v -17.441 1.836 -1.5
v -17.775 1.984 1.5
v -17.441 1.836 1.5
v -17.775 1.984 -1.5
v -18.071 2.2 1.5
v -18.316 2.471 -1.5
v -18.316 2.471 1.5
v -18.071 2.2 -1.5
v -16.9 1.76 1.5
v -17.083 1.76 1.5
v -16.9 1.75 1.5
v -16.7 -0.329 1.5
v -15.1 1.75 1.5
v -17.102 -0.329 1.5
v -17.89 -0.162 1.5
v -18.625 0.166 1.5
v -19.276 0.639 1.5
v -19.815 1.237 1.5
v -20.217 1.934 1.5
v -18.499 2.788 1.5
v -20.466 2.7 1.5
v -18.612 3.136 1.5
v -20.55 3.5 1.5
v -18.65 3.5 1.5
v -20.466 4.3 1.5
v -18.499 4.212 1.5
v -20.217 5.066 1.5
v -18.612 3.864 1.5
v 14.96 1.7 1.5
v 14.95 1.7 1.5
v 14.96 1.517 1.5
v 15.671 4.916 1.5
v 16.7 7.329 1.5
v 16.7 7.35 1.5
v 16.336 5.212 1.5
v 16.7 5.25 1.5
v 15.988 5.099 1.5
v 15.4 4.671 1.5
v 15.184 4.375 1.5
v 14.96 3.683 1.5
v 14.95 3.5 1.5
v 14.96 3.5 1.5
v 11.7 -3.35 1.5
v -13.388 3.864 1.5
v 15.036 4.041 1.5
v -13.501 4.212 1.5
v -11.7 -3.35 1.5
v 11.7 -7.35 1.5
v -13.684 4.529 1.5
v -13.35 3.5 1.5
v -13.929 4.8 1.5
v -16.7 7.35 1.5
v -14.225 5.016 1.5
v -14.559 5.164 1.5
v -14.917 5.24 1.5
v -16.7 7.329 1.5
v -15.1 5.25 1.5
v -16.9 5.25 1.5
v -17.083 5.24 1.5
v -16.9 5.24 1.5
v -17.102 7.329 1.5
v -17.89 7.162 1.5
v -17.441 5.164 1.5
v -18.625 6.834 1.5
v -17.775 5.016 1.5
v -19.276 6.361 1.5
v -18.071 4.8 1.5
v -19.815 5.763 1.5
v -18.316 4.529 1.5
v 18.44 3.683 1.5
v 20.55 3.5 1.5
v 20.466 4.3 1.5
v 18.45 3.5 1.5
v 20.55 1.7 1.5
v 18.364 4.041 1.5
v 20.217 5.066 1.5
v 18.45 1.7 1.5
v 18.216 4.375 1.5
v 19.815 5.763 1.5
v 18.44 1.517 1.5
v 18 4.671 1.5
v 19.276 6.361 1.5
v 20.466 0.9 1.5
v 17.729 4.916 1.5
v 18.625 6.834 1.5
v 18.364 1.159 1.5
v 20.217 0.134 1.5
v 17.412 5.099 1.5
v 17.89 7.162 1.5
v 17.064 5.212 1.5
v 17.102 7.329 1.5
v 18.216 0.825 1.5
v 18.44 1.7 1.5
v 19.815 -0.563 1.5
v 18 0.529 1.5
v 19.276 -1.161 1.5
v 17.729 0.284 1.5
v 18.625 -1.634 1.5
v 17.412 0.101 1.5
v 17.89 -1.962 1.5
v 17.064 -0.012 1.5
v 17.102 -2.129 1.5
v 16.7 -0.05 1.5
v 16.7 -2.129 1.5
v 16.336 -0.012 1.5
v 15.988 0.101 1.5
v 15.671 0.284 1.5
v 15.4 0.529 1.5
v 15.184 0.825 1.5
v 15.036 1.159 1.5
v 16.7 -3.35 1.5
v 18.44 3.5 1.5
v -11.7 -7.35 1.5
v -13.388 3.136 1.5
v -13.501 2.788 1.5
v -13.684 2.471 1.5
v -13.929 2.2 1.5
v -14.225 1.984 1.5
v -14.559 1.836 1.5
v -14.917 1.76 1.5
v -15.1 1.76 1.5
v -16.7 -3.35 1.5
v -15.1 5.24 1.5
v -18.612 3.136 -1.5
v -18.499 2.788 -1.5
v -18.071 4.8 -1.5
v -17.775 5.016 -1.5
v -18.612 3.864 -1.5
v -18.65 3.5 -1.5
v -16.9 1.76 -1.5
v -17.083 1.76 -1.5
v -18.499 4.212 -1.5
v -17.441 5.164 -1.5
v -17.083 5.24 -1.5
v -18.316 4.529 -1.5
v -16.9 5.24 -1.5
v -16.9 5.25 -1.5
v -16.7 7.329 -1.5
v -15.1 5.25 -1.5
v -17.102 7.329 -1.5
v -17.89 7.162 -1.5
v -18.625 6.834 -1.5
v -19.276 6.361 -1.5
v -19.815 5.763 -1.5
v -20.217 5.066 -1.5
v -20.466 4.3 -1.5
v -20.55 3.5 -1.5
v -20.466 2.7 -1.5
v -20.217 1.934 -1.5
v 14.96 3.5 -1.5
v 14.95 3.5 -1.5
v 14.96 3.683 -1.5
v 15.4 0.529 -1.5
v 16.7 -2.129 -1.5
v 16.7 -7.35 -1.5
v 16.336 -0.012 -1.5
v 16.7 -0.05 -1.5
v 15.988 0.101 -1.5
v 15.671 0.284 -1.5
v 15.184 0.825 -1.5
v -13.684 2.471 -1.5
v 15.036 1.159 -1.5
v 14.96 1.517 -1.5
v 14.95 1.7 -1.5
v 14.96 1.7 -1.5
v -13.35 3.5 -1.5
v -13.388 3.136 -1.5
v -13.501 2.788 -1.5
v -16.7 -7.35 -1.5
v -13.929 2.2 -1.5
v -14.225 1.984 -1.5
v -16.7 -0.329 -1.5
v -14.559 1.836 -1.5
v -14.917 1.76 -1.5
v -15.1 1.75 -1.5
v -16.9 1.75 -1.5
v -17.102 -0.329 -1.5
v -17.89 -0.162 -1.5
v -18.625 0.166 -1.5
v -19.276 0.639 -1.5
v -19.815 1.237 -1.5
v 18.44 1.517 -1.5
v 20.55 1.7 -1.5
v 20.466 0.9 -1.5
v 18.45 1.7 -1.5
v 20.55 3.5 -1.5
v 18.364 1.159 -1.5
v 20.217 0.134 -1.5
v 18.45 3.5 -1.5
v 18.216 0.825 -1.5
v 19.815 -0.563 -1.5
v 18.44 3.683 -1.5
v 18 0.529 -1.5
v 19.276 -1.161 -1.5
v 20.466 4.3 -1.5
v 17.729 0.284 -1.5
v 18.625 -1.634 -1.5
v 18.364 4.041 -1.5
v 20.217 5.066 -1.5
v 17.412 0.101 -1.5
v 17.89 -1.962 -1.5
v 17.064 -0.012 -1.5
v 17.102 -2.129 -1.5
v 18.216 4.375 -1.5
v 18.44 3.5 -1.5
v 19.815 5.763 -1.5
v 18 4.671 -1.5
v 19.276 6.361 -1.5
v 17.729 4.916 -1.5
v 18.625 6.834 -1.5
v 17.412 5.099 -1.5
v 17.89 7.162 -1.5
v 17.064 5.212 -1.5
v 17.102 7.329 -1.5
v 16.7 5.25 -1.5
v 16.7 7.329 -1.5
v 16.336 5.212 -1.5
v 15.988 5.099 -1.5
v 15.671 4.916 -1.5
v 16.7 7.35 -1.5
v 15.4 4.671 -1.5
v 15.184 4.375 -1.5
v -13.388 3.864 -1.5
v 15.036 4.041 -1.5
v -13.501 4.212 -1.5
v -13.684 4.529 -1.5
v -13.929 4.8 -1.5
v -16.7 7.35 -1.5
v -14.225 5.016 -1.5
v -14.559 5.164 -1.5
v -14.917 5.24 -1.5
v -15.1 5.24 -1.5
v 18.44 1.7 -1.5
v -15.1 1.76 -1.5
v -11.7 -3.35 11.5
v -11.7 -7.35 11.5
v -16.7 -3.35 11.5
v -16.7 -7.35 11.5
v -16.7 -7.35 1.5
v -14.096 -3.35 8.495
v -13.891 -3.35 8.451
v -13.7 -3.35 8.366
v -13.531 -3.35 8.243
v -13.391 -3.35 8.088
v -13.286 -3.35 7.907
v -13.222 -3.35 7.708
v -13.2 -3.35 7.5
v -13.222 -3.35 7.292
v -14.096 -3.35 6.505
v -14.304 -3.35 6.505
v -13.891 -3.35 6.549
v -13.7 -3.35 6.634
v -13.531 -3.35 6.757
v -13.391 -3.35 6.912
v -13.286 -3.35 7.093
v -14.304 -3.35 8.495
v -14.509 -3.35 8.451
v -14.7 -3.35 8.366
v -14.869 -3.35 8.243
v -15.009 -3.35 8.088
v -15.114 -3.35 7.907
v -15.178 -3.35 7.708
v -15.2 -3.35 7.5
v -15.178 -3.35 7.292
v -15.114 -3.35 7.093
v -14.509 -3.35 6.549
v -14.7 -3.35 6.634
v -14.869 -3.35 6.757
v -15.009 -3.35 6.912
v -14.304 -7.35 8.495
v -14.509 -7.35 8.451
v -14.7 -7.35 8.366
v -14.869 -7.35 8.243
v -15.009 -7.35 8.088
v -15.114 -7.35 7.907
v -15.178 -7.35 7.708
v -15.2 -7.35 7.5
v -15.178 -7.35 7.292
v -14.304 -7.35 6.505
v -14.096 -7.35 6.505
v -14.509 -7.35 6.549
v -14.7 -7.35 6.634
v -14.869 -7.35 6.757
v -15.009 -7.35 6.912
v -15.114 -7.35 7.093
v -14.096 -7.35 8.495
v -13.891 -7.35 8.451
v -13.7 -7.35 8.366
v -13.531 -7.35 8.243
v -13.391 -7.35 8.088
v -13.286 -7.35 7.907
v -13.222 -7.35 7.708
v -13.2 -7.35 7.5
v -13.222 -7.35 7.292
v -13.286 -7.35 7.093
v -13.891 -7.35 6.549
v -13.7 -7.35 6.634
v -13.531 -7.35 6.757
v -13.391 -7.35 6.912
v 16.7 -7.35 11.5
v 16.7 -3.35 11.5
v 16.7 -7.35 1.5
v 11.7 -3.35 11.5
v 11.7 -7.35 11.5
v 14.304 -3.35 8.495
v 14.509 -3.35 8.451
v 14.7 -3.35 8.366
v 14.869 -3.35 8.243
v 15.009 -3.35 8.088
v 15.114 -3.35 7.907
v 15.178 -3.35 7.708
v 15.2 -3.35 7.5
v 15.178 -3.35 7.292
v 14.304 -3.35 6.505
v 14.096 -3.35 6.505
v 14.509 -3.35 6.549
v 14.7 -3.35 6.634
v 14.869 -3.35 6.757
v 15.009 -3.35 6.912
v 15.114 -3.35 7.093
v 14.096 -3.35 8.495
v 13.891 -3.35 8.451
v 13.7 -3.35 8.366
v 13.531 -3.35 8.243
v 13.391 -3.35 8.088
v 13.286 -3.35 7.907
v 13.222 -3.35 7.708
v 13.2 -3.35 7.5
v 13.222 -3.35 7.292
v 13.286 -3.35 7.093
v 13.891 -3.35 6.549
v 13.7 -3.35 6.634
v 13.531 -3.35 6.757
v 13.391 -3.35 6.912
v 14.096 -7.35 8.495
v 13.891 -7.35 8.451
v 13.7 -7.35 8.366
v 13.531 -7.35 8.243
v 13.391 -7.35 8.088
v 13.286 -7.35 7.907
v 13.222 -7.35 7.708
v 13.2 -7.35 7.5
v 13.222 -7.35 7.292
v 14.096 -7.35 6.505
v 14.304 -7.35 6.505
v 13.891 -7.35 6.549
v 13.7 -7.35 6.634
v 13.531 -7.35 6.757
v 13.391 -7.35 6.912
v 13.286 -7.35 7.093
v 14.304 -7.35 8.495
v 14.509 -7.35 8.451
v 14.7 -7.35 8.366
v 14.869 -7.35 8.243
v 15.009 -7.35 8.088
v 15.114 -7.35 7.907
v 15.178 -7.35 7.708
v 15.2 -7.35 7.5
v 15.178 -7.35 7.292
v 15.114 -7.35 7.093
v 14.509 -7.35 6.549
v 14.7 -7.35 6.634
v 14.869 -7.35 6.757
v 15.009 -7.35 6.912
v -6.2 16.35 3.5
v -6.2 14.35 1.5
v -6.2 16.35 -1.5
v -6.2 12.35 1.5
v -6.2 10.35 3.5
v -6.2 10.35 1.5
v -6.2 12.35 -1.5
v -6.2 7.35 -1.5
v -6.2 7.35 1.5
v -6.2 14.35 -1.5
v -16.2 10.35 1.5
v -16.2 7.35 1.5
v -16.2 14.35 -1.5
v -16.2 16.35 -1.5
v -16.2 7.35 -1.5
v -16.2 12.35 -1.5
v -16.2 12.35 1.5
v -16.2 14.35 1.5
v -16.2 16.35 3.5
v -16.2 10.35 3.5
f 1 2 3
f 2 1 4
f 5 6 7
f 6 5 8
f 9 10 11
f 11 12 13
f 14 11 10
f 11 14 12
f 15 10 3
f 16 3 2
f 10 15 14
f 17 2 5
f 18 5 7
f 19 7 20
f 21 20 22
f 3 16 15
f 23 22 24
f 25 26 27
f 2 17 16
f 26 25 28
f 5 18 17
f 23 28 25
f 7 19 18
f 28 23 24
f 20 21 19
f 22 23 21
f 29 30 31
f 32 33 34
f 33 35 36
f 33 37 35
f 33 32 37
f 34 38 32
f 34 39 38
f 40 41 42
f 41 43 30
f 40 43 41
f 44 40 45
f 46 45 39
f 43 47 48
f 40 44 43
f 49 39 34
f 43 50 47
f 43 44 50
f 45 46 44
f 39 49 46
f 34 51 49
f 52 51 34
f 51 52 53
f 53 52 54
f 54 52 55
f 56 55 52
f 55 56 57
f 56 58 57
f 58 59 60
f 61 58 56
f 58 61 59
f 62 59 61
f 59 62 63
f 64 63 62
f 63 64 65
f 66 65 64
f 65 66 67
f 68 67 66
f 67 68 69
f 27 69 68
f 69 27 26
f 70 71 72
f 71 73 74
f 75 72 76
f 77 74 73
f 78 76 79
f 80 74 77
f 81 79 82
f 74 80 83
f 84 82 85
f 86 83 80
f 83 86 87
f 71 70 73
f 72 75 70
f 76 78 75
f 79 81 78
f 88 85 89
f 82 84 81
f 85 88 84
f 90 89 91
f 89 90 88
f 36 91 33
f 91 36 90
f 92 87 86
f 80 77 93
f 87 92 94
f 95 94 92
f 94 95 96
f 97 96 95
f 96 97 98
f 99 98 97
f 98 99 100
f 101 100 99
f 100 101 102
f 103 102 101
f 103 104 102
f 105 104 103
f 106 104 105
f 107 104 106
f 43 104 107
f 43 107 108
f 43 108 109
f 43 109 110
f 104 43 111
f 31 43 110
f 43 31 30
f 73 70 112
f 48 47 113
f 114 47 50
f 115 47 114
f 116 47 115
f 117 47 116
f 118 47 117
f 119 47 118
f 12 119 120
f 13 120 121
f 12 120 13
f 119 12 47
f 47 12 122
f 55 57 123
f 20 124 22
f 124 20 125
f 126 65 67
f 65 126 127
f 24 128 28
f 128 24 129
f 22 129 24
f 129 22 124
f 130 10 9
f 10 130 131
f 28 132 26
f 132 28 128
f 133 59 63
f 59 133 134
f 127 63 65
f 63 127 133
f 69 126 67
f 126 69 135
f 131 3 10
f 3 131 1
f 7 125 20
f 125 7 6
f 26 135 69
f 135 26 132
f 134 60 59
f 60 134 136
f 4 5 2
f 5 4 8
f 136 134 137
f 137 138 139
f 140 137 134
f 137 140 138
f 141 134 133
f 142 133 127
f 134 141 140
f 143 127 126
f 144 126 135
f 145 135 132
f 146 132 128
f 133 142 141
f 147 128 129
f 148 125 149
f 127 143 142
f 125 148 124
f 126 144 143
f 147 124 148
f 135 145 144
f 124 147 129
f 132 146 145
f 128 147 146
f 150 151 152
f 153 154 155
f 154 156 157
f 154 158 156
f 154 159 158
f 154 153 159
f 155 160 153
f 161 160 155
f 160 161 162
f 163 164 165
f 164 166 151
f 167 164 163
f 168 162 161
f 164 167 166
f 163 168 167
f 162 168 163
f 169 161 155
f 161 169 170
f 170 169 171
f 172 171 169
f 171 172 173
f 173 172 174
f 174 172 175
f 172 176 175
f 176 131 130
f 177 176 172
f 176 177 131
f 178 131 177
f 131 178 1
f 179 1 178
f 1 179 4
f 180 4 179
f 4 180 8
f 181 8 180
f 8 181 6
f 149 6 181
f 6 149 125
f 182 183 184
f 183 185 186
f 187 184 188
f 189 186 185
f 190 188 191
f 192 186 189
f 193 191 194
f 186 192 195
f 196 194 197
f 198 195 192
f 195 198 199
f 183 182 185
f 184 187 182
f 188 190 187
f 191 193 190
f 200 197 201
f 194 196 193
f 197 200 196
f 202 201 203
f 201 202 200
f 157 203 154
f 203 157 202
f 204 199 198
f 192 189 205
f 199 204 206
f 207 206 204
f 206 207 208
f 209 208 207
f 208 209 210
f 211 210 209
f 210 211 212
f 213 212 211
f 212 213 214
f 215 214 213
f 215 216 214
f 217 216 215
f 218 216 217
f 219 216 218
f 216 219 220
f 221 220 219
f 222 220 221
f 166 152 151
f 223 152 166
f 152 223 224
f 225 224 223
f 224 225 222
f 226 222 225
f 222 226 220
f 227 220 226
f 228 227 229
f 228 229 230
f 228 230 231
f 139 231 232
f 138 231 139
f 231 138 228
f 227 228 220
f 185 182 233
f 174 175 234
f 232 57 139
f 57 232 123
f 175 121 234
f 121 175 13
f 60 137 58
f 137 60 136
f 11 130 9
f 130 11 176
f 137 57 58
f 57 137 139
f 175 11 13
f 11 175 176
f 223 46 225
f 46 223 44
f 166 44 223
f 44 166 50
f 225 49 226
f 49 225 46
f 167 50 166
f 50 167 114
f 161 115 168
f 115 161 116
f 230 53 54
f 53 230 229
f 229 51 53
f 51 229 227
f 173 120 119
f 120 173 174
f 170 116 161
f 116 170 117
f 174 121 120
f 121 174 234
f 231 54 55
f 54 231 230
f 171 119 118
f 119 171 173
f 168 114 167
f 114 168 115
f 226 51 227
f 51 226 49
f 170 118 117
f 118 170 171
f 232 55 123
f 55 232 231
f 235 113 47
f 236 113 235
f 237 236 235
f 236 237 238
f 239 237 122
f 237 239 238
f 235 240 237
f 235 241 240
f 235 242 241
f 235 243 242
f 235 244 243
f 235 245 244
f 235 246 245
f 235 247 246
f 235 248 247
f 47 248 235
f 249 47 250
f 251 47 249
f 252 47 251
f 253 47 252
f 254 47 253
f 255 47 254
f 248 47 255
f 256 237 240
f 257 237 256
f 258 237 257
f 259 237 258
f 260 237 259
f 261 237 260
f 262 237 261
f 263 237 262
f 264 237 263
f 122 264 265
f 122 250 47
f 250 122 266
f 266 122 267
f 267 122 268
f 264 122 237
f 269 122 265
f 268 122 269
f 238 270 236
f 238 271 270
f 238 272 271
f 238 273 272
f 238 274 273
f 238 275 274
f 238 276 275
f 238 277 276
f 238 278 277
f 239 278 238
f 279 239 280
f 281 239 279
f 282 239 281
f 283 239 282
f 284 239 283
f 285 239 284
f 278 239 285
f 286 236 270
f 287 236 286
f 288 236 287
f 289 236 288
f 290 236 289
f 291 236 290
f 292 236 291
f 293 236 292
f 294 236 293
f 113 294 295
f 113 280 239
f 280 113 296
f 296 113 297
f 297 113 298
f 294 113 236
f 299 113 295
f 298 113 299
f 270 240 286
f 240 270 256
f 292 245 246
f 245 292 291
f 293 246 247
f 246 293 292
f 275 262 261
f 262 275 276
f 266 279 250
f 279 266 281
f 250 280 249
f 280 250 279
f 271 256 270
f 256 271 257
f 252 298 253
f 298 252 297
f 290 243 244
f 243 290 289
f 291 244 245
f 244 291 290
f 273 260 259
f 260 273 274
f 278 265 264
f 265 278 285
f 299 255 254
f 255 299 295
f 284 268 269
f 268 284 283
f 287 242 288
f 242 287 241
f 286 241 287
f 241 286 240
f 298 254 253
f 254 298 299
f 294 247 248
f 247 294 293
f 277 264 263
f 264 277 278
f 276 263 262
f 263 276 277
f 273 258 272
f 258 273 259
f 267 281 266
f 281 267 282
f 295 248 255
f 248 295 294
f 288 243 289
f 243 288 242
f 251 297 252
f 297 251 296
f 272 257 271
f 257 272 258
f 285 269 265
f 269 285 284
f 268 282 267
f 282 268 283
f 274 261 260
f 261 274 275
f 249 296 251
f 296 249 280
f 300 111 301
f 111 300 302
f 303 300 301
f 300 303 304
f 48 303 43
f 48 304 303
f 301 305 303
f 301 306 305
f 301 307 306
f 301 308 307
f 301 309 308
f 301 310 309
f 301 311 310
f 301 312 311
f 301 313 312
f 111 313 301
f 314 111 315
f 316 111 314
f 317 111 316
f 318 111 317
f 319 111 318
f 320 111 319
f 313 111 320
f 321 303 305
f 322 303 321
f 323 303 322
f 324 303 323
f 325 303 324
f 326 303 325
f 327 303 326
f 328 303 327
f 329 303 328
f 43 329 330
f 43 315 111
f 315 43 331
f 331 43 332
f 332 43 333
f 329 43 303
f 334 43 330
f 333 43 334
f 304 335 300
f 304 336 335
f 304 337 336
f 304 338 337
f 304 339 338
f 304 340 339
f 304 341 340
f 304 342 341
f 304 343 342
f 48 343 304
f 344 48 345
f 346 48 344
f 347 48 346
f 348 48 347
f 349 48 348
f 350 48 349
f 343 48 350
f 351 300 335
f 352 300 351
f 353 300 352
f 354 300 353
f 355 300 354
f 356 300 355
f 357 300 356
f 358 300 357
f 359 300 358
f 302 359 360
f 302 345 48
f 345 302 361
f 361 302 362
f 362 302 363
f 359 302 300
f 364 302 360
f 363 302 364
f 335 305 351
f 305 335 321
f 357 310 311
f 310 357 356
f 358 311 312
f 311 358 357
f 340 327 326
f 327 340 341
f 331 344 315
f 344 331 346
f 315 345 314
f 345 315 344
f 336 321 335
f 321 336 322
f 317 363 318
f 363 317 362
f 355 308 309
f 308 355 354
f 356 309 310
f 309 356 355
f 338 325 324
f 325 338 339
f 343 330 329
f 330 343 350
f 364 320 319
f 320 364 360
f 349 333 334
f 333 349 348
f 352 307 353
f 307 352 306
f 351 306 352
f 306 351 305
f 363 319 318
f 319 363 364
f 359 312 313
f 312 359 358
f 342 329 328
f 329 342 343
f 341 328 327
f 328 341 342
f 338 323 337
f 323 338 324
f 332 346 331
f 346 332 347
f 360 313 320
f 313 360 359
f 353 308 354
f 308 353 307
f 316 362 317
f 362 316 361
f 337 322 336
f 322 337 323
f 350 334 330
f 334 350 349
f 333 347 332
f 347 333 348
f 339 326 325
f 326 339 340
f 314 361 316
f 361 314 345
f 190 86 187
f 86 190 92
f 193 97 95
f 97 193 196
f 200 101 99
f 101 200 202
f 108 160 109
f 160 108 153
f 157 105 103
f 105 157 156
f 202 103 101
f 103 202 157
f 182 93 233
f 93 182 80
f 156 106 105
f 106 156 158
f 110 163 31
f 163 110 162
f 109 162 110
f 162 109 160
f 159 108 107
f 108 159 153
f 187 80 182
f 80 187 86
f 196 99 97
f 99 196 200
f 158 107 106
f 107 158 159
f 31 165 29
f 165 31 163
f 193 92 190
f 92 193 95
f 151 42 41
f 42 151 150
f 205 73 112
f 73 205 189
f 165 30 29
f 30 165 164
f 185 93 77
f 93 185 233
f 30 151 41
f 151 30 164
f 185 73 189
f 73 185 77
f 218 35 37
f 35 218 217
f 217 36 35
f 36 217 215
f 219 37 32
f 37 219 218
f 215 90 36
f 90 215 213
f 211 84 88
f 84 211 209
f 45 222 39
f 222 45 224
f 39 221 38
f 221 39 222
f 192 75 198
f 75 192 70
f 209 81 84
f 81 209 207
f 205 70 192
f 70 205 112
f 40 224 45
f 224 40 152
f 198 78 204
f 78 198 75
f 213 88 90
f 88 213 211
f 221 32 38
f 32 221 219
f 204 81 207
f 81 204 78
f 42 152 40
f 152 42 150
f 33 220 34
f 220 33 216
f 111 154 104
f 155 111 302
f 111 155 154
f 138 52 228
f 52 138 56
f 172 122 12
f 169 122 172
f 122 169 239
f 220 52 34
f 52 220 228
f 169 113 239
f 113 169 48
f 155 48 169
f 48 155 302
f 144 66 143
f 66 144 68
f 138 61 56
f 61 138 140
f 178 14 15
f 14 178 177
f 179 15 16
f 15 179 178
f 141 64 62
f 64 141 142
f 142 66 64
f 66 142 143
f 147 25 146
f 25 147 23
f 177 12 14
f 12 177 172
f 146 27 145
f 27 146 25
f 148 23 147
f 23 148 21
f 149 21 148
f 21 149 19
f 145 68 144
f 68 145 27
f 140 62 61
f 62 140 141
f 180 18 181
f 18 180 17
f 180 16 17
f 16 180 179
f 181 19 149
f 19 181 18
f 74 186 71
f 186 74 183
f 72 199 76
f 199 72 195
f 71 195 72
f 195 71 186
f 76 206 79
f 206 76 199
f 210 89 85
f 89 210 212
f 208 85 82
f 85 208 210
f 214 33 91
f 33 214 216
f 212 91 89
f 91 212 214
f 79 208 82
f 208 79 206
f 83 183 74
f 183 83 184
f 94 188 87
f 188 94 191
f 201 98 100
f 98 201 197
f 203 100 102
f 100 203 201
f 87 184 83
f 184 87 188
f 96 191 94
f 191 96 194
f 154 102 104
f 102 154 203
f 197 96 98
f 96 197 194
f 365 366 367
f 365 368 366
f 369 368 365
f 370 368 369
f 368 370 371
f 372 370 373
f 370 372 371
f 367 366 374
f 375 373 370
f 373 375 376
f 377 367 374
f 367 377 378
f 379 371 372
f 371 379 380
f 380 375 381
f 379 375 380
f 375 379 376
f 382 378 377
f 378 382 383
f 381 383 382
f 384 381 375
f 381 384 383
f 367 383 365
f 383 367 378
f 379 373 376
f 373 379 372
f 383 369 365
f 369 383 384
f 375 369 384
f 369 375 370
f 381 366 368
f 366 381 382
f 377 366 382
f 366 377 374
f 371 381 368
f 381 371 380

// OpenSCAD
$fn=30;

module screwHole() {  
    union() {
        translate([-0.9, 0, 0]) cylinder(d=3.5, h=3, center = true);
        cube([1.8, 3.5, 3], center = true);
        translate([0.9, 0, 0]) cylinder(d=3.5, h=3, center = true);
    };
};

module mainBase() {
    difference() {
        union() {
            cube([33.4, 14.7, 3], center = true);
            translate([-16.7, 3.5, 0,]) cylinder(d=7.7, h=3, center = true);
            translate([16.7, 2.6, 0]) cube([7.7, 1.8, 3], center = true);
            translate([16.7, 3.5, 0]) cylinder(d=7.7, h=3, center = true);
            translate([16.7, 1.7, 0]) cylinder(d=7.7, h=3, center = true);
        };
        translate([16.7, 2.6, 0]) rotate([0, 0, 90]) screwHole();
        translate([-16, 3.5, 0]) screwHole();
    };
};


module pushrodSupport() {
    difference() {
        union() {
            translate([0, 0, -1.5]) cube([10, 9, 3], center = true);
            translate([0, 1.5, 1]) cube([10, 6, 2], center = true);
        }
        translate([0, 1.5, -1.5]) cube([10, 2, 3], center = true);
    };
};

module servoMount() {
    difference() {
        cube([5, 4, 10], center = true);
        translate([0, 0, 1]) rotate([90, 0, 0]) cylinder(d=2, h=4, center = true);
    };
};

mainBase();
translate([5 - 16.2 , 4.5 + 7.35, 1.5]) pushrodSupport();
translate([2.5 - 16.7, 2 - 7.35, 5 + 1.5]) servoMount();
translate([- 2.5 + 16.7, 2 - 7.35, 5 + 1.5]) servoMount();
